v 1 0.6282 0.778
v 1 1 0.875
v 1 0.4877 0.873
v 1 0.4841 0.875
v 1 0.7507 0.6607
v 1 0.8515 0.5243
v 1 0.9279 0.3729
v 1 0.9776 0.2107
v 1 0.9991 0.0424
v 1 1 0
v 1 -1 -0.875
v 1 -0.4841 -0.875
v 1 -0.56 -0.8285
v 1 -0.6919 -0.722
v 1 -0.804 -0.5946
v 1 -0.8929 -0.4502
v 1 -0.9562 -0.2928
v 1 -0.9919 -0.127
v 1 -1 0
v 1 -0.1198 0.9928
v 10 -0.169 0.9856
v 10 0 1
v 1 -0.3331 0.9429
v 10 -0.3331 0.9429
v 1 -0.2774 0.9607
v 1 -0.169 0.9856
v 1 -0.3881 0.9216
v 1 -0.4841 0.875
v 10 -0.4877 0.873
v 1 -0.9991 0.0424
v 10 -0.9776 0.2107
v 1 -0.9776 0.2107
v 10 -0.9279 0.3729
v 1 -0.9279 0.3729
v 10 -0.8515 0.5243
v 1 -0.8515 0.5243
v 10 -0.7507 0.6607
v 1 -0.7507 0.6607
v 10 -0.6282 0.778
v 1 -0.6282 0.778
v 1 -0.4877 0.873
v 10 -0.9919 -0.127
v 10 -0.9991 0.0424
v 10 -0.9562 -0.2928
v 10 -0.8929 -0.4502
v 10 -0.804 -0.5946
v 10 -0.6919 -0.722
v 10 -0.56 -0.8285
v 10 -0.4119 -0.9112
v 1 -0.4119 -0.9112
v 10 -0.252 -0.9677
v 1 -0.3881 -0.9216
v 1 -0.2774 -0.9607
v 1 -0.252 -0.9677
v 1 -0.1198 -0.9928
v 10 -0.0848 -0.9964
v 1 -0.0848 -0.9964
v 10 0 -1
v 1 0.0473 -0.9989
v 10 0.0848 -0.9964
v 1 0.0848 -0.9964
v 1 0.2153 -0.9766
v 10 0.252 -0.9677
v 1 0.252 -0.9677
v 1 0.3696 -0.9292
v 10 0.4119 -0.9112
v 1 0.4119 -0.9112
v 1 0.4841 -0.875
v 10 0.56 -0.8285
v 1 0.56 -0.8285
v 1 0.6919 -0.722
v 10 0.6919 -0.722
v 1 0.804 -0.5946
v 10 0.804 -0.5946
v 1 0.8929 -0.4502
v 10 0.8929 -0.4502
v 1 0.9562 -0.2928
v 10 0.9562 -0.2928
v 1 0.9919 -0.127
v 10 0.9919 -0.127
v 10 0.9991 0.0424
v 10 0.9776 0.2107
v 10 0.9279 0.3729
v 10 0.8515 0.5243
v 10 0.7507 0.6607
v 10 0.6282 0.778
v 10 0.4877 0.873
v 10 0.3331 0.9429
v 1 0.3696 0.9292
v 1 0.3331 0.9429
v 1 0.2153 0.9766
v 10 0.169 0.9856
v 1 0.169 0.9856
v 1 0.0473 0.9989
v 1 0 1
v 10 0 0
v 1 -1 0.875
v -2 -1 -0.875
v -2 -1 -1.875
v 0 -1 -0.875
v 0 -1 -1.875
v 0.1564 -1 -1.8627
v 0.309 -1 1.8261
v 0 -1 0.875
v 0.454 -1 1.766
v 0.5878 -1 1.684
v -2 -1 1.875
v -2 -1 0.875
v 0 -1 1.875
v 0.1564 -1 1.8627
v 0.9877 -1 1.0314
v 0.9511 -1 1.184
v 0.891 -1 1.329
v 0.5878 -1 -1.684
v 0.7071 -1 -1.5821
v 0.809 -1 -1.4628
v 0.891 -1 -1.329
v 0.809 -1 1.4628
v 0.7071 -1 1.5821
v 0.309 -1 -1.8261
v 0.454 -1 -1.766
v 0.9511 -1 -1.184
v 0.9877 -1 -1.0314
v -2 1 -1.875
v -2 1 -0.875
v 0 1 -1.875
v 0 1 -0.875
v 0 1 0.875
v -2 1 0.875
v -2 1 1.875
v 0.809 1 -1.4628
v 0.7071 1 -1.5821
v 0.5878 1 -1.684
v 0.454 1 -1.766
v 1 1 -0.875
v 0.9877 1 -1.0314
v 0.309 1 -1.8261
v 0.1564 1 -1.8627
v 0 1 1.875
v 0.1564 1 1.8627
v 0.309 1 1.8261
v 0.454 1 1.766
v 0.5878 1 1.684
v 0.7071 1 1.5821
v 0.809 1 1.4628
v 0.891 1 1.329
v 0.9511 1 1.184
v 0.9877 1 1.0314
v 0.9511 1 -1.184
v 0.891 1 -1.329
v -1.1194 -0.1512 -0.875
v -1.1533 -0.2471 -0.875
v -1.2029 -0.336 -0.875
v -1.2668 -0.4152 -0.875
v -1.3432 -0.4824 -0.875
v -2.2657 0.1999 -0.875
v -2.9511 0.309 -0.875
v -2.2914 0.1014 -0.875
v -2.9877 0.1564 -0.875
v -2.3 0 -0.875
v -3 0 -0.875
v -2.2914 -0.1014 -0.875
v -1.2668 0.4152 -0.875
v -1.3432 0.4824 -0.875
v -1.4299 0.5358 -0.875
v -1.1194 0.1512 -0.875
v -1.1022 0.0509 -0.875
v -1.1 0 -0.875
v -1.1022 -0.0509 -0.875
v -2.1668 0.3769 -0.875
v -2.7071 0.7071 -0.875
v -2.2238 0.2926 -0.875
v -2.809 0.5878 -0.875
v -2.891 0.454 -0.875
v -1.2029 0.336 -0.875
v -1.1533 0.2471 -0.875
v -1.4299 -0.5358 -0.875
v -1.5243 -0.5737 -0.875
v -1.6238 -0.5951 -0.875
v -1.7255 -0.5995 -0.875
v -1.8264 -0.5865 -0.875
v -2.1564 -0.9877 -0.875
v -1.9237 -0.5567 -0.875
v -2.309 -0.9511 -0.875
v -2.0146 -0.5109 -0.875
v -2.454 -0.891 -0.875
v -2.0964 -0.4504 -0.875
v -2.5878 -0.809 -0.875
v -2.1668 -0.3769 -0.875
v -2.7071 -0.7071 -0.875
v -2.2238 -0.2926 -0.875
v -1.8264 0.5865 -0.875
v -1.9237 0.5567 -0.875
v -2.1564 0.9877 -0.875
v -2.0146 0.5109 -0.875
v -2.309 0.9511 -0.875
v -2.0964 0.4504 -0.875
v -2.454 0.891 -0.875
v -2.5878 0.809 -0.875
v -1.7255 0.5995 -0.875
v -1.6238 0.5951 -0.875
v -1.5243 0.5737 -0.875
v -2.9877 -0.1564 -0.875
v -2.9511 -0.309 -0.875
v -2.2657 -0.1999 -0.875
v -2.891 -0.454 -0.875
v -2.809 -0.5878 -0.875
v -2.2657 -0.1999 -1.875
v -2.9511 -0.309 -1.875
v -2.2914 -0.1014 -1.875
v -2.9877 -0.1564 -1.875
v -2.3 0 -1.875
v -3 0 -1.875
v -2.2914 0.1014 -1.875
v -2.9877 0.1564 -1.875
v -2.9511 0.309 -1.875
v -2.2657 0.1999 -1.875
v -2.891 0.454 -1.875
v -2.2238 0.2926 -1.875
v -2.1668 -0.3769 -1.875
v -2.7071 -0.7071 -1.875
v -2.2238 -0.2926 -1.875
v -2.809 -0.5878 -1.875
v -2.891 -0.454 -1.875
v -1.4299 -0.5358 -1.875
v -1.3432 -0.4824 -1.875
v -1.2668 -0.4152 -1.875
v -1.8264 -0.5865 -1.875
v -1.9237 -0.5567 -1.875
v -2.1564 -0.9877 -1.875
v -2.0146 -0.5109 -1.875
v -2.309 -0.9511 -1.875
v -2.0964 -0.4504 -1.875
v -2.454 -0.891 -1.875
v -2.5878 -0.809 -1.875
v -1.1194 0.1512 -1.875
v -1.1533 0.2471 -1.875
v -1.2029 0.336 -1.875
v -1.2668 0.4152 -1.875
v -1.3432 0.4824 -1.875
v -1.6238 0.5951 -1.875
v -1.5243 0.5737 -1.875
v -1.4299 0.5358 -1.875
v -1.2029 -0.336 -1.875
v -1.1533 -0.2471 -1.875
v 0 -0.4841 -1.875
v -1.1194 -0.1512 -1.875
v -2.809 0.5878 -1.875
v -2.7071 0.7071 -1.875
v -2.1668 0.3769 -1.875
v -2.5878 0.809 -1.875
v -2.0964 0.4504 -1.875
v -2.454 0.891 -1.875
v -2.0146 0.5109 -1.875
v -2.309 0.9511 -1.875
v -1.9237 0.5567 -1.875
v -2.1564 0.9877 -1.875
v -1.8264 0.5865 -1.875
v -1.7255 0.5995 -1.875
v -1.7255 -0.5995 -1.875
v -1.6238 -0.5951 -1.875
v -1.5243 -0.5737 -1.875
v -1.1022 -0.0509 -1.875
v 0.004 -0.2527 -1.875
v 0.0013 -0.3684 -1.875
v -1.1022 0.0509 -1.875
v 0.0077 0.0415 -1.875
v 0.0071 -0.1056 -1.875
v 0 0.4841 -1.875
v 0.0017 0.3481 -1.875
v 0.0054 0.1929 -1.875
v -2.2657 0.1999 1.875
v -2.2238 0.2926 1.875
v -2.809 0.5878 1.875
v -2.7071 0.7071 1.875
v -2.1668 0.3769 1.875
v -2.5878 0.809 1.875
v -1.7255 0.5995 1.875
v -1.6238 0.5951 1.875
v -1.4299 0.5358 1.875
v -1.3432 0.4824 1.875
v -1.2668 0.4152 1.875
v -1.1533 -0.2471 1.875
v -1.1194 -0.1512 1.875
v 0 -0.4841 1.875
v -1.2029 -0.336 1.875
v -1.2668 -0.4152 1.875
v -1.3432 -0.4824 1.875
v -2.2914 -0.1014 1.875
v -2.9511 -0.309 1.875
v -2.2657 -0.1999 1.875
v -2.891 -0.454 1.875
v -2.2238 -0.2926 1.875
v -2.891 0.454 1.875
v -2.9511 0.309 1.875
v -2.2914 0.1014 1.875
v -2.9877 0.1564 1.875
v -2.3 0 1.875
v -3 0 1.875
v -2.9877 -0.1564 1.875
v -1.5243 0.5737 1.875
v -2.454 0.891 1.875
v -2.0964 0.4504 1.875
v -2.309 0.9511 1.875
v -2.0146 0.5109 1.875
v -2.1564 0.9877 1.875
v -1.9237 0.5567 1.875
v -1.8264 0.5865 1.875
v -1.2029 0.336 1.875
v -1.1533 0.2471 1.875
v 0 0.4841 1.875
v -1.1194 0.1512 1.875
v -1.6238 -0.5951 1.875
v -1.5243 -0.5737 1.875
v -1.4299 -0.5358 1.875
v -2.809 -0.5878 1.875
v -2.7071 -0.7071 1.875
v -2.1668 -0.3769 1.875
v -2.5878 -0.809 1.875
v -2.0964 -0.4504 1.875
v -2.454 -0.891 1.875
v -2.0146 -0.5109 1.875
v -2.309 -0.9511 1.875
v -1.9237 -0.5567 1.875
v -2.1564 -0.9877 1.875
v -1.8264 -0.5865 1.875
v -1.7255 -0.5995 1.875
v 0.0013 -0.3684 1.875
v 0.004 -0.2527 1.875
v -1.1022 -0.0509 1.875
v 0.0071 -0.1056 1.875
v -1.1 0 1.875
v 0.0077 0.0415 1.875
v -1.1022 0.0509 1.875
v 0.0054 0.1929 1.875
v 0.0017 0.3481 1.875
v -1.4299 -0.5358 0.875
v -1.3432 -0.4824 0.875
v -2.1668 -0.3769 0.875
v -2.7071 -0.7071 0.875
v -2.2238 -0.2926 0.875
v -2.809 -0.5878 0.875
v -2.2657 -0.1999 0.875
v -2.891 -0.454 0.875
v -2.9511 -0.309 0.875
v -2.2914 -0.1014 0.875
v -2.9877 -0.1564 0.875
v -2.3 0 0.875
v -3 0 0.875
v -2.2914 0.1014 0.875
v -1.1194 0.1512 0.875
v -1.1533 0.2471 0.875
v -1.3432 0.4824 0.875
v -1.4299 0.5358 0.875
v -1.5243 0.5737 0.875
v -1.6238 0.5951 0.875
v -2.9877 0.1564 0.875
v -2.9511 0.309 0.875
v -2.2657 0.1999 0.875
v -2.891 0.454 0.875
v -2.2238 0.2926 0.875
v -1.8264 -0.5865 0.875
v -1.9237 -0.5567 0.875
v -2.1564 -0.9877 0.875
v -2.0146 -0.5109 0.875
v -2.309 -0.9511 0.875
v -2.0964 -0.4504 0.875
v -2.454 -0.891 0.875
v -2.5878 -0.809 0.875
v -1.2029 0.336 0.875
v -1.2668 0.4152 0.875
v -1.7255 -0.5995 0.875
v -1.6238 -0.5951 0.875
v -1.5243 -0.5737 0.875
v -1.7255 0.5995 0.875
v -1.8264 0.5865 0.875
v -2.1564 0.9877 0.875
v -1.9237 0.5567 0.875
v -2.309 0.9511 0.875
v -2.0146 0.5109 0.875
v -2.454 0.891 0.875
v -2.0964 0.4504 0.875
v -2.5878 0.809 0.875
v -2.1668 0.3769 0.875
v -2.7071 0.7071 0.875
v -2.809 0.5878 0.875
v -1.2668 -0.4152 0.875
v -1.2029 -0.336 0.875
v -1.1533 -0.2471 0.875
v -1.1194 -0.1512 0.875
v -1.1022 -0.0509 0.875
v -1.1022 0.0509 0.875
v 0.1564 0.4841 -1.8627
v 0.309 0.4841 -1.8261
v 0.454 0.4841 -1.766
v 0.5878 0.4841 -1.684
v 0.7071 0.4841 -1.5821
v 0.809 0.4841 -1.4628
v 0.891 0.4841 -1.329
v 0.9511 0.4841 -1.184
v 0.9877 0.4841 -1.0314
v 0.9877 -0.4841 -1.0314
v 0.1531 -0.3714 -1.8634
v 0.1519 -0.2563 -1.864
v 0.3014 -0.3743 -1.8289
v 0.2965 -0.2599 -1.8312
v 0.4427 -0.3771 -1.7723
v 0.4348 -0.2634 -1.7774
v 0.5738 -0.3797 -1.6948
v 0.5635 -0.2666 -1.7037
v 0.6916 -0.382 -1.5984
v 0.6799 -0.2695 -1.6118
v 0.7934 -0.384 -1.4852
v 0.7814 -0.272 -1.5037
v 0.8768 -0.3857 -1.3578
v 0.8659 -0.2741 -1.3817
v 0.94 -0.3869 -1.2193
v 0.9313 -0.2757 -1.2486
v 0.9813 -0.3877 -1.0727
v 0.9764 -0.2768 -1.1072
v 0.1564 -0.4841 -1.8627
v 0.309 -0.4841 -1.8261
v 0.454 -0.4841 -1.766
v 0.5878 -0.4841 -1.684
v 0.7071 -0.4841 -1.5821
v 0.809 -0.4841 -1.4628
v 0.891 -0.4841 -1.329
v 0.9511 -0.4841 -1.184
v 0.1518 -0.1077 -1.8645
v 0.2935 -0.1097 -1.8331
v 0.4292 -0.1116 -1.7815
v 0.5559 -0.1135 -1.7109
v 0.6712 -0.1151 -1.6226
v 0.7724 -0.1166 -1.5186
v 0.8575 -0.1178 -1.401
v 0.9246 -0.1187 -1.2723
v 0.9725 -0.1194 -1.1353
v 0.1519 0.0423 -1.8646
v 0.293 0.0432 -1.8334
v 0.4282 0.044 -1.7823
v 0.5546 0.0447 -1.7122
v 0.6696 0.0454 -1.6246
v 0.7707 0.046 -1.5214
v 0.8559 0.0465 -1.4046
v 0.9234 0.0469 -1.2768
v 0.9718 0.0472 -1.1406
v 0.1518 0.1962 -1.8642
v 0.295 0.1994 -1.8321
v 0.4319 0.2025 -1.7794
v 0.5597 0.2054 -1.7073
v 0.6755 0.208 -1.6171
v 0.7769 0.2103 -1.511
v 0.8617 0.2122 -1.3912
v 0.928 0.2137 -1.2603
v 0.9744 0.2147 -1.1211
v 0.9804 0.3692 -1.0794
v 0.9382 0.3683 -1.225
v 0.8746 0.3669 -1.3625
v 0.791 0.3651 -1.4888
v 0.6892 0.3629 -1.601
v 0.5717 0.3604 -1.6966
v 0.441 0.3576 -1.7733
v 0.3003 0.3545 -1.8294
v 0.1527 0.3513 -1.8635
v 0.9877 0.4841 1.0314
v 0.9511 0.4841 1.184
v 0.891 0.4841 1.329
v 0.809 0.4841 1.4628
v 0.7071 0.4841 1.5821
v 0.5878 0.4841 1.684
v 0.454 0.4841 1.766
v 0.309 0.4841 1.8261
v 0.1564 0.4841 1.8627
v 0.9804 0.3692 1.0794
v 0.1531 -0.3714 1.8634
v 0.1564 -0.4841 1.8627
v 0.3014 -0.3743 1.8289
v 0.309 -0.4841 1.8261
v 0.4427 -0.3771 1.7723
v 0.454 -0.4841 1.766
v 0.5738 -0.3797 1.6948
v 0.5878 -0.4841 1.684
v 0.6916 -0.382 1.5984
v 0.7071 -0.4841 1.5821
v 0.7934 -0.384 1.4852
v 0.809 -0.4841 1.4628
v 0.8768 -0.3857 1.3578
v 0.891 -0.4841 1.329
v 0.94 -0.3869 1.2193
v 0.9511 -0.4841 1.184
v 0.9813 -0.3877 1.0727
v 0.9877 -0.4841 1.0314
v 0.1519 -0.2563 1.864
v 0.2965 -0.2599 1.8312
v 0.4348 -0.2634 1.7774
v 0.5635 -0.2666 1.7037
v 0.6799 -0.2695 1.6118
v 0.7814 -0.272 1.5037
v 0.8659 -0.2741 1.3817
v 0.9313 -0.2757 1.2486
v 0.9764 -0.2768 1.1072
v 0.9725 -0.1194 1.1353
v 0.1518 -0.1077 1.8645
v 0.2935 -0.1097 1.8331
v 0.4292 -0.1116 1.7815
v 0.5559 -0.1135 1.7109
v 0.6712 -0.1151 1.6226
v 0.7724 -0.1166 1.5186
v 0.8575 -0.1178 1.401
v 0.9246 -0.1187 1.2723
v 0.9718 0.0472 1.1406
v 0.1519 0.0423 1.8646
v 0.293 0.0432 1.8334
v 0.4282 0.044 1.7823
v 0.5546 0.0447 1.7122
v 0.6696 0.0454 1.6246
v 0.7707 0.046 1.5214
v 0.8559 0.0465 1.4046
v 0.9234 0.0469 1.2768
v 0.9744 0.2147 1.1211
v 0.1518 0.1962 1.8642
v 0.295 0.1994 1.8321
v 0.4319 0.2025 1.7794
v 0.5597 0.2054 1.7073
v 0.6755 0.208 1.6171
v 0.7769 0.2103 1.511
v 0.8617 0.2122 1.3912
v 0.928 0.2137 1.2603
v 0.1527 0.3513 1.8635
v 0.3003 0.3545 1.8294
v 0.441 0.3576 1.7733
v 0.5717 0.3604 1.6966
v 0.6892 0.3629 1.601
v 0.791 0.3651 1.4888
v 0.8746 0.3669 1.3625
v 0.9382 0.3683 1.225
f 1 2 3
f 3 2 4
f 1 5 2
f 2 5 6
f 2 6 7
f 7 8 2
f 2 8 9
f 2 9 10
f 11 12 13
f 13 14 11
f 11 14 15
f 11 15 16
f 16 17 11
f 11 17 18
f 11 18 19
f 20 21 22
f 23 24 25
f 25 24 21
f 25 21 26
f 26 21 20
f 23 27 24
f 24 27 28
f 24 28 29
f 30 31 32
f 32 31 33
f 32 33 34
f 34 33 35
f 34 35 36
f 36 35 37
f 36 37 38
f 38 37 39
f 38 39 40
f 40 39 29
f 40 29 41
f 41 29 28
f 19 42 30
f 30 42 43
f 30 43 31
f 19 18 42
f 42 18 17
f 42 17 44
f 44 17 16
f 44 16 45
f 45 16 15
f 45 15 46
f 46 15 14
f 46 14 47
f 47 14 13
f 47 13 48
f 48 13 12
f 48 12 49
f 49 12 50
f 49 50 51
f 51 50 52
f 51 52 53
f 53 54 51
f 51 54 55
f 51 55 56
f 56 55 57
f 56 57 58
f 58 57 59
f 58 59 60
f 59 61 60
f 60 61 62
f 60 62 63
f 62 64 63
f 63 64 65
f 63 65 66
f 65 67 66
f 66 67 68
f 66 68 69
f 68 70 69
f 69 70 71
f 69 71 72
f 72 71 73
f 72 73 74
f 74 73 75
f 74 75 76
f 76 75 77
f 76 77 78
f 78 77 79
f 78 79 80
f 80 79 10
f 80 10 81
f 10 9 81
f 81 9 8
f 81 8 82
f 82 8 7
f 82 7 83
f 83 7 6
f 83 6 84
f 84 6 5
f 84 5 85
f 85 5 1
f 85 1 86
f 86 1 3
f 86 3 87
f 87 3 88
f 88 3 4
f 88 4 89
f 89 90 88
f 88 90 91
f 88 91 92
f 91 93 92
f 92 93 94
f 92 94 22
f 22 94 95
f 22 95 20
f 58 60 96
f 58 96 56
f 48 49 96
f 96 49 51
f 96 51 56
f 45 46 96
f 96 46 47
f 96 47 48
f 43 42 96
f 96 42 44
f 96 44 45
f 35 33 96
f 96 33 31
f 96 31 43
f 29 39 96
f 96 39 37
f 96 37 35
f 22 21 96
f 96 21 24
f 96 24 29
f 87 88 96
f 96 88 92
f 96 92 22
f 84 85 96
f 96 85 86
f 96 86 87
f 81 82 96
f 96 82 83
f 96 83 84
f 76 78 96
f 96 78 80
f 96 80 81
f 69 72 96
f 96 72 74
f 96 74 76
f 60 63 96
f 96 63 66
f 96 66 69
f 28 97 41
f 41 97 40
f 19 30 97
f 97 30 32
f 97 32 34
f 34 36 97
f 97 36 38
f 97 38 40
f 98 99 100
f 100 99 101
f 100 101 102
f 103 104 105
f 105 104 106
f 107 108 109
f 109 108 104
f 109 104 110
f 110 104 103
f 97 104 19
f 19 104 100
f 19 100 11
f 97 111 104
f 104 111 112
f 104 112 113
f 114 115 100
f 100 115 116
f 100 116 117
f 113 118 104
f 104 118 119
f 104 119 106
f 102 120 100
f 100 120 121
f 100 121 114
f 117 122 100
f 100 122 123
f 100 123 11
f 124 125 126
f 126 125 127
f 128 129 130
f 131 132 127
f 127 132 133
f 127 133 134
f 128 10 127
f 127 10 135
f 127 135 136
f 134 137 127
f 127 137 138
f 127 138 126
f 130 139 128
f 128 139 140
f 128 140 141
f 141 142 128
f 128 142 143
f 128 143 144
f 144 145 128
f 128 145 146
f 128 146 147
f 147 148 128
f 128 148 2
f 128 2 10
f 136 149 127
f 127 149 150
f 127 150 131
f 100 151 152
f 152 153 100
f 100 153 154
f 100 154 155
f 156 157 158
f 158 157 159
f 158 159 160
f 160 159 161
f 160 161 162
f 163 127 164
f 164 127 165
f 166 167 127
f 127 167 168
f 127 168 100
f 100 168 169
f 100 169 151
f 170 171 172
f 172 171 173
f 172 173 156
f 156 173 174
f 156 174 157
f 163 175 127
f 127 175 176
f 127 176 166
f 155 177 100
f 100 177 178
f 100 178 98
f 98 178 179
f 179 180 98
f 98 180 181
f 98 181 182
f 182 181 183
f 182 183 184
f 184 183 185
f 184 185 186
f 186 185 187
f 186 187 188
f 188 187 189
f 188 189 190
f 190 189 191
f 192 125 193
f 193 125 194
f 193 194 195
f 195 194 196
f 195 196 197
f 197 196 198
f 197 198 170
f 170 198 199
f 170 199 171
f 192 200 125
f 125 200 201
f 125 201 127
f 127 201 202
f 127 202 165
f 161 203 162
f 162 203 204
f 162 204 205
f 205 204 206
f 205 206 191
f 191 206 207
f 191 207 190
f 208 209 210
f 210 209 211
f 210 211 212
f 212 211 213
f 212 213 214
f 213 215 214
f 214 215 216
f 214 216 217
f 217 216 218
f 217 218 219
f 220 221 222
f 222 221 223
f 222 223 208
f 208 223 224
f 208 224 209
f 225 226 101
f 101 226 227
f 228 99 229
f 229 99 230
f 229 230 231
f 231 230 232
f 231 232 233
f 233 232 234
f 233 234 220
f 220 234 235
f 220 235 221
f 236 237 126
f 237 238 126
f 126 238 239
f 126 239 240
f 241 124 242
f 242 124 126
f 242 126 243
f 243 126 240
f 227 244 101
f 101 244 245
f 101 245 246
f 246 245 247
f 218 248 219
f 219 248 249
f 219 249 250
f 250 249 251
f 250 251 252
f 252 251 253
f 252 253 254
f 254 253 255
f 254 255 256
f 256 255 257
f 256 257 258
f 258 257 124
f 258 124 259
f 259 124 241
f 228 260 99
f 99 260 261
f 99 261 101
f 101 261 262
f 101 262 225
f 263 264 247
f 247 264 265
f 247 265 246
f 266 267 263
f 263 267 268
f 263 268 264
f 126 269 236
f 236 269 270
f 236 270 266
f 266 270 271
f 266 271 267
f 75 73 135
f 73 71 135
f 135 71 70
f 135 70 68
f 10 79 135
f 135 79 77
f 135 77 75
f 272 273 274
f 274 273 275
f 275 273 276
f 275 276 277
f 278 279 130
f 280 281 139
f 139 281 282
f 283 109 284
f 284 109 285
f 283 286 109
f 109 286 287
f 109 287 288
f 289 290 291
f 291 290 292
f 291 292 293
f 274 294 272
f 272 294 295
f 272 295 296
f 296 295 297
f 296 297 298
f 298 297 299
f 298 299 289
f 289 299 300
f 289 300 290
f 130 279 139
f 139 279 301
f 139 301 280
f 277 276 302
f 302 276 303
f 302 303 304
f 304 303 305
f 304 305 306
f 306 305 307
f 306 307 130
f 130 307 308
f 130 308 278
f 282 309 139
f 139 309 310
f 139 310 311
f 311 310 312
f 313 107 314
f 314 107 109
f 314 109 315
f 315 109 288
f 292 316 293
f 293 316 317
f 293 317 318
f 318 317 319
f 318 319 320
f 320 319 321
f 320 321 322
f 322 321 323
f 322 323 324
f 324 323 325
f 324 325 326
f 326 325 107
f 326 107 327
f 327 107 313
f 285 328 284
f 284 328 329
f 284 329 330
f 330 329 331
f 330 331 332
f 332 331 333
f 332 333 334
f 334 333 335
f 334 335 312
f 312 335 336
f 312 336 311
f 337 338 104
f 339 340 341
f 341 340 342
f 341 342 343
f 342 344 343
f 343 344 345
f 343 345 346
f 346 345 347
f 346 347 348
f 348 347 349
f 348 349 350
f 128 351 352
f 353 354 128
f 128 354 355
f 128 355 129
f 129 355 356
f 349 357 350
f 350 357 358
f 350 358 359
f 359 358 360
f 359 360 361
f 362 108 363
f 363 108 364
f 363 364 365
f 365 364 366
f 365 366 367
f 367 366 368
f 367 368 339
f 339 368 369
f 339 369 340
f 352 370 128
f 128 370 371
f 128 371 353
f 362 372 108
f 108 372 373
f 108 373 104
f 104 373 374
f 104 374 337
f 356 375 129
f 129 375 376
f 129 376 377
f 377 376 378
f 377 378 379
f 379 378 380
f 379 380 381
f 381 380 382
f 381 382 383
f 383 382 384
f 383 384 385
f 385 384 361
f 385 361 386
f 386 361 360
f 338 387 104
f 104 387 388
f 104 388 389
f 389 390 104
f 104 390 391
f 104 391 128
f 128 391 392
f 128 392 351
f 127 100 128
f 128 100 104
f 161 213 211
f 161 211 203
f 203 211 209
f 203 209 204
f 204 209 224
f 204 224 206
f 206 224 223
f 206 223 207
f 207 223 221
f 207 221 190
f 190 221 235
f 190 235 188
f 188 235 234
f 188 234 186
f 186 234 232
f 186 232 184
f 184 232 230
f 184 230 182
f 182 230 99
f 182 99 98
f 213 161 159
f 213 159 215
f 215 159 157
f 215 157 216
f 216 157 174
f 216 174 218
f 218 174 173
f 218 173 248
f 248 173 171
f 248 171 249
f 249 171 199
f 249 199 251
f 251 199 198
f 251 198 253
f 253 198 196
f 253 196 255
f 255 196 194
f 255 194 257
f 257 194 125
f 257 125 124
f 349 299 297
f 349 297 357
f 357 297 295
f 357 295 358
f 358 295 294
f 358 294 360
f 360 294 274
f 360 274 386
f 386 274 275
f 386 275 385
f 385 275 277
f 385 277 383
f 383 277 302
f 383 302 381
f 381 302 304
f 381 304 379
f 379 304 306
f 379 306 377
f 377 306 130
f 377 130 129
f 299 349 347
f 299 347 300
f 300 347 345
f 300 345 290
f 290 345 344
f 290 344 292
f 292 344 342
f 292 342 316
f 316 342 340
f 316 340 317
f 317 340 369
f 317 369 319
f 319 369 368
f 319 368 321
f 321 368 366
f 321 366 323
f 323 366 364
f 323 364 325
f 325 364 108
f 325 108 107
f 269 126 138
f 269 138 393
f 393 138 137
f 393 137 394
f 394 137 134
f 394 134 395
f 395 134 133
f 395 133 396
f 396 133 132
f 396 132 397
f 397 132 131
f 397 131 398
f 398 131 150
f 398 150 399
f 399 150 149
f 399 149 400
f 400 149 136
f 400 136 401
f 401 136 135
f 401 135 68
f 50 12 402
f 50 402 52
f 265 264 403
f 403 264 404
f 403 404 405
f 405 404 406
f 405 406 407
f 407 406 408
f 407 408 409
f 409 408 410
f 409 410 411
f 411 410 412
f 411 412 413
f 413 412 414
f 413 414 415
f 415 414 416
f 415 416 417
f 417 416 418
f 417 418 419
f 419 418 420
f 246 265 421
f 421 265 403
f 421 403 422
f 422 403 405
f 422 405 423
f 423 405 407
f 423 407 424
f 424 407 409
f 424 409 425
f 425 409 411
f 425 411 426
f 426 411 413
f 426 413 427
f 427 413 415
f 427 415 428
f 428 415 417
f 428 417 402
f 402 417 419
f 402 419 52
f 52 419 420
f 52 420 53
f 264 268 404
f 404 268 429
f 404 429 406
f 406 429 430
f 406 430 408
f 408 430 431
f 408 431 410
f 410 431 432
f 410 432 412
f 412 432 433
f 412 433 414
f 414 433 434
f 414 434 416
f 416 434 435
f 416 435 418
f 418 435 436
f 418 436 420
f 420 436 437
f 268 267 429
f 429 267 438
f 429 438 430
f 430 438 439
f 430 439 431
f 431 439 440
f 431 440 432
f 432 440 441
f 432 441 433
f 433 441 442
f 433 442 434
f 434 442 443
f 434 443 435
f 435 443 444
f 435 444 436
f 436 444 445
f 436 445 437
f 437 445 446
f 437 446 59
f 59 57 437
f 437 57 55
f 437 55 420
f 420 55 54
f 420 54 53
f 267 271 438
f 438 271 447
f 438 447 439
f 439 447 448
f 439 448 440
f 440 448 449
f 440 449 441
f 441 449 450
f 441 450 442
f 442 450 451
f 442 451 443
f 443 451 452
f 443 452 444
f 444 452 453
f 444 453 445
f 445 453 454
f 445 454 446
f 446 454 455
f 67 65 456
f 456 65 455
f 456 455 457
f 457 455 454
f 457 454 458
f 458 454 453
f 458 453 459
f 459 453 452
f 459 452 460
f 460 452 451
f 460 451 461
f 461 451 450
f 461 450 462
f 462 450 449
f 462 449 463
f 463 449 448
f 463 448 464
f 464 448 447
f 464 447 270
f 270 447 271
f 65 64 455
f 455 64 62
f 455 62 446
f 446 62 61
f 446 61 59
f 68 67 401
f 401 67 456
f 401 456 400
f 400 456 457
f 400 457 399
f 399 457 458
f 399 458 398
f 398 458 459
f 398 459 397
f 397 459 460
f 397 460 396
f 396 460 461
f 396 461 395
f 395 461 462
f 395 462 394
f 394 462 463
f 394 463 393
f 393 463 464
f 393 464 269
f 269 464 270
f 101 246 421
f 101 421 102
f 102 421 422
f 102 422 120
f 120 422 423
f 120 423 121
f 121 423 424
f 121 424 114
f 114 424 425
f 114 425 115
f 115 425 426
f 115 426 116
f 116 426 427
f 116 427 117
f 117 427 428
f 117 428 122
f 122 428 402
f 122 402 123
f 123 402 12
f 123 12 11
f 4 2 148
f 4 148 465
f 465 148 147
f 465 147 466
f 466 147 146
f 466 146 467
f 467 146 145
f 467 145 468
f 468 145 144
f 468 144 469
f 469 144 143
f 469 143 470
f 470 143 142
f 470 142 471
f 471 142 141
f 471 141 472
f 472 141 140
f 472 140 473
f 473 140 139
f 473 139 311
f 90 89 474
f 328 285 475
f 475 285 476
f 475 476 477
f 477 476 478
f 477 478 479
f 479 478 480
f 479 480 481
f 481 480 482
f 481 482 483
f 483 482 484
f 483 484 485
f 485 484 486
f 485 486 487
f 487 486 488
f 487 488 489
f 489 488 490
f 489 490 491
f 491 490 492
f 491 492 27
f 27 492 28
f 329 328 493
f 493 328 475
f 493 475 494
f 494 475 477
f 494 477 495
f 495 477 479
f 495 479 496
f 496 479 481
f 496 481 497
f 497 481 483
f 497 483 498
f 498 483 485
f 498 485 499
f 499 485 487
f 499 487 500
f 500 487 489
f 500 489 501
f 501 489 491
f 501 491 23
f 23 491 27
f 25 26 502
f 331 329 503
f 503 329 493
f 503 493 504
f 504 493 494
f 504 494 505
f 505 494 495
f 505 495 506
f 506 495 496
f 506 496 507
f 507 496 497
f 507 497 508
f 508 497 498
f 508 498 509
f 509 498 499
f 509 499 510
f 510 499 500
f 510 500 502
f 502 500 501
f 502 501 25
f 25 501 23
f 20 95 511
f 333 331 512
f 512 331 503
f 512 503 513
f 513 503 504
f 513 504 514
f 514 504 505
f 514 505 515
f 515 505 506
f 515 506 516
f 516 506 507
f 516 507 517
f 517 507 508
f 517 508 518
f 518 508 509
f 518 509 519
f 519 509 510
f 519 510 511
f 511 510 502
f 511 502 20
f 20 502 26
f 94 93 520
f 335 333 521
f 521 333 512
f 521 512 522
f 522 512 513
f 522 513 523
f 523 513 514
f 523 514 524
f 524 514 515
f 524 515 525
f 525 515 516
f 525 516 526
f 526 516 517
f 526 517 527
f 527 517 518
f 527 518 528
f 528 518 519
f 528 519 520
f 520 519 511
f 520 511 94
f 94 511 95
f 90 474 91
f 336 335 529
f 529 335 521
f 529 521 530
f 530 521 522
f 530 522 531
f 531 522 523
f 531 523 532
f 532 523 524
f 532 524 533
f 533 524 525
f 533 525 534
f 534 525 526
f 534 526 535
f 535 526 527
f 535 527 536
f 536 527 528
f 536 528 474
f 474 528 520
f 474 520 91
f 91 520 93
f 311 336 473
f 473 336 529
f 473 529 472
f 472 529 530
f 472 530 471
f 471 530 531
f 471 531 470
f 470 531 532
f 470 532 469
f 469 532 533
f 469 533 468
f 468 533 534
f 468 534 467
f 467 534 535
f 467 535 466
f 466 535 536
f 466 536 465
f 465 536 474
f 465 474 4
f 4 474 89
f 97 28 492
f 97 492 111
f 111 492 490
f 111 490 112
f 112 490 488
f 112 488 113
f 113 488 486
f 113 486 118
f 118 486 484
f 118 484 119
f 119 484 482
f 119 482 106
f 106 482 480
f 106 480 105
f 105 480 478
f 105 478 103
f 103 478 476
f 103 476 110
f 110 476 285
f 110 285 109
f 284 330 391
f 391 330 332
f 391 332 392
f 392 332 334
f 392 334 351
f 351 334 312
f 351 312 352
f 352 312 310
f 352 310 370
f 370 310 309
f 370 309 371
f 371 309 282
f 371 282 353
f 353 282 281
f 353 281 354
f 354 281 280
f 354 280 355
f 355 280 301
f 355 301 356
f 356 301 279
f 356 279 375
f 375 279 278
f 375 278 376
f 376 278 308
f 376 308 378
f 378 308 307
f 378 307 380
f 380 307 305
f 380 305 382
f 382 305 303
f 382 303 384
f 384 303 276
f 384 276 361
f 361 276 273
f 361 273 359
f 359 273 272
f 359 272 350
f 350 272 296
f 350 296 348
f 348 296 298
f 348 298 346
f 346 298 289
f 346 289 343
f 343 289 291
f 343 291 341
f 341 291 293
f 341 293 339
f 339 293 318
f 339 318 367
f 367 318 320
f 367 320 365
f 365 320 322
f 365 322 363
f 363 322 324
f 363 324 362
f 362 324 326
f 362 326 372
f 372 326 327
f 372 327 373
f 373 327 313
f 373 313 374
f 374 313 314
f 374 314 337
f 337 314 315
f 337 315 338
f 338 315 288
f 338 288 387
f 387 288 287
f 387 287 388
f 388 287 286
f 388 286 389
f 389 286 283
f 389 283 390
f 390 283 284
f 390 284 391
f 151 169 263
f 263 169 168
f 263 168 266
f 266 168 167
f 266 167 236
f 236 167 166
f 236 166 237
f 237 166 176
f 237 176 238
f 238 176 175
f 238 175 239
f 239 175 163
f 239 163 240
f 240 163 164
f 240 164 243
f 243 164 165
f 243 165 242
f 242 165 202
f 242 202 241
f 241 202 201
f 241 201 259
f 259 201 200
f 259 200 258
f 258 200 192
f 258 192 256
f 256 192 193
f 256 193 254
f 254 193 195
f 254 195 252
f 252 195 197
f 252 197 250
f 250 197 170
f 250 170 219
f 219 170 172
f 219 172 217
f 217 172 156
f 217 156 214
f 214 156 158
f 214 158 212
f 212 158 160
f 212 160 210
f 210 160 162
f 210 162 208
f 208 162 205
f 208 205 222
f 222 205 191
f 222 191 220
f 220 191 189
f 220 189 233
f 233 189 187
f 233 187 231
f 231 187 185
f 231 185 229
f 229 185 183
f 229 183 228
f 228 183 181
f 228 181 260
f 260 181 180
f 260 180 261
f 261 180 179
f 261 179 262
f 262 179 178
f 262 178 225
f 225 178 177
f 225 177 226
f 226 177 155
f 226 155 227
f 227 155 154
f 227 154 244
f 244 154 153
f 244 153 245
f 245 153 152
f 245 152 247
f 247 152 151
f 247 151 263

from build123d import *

# Parameters (mm, degrees)
SKETCH1_R                = 1
BOSS_EXTRUDE1_DEPTH      = 10
BOSS_EXTRUDE2_DEPTH      = 1
BOSS_EXTRUDE2_DEPTH_BACK = 1
FILLET1_R                = 1
SKETCH3_R                = 0.6
CUT_EXTRUDE1_DEPTH       = 5


with BuildPart() as part:
    # Sketch1 → Boss-Extrude1 (new body)
    with BuildSketch(Plane(origin=(0, 0, 0), x_dir=(0, 0, -1), z_dir=(1, 0, 0))):
        Circle(SKETCH1_R)
    extrude(amount=BOSS_EXTRUDE1_DEPTH)

    # Sketch2 → Boss-Extrude2 (add, two sides: drawn at the far end of the back side and taken through both)
    with BuildSketch(Plane(origin=(0, 0, 0), x_dir=(1, 0, 0), z_dir=(0, 1, 0)).offset(-BOSS_EXTRUDE2_DEPTH_BACK)):
        Polygon((1, 1.875), (1, -1.875), (-3, -1.875), (-3, -0.875), (0, -0.875), (0, 0.875), (-3, 0.875), (-3, 1.875), align=None)
    extrude(amount=BOSS_EXTRUDE2_DEPTH + BOSS_EXTRUDE2_DEPTH_BACK)

    # Fillet1
    fillet1_edges = [part.edges().sort_by_distance(p)[0] for p in [
        (-3, 1, -1.375),
        (-3, -1, -1.375),
        (-3, -1, 1.375),
        (-3, 1, 1.375),
        (1, 0, -1.875),
        (1, 0, 1.875),
    ]]
    fillet(fillet1_edges, radius=FILLET1_R - 0.0001)  # a hair under: the kernel refuses the full size

    # Sketch3 → Cut-Extrude1 (cut)
    with BuildSketch(Plane(origin=(0, 0, -1.875), x_dir=(-1, 0, 0), z_dir=(0, 0, -1))):
        with Locations((1.7, 0)):
            Circle(SKETCH3_R)
    extrude(amount=-CUT_EXTRUDE1_DEPTH, mode=Mode.SUBTRACT)


solid = part.part
